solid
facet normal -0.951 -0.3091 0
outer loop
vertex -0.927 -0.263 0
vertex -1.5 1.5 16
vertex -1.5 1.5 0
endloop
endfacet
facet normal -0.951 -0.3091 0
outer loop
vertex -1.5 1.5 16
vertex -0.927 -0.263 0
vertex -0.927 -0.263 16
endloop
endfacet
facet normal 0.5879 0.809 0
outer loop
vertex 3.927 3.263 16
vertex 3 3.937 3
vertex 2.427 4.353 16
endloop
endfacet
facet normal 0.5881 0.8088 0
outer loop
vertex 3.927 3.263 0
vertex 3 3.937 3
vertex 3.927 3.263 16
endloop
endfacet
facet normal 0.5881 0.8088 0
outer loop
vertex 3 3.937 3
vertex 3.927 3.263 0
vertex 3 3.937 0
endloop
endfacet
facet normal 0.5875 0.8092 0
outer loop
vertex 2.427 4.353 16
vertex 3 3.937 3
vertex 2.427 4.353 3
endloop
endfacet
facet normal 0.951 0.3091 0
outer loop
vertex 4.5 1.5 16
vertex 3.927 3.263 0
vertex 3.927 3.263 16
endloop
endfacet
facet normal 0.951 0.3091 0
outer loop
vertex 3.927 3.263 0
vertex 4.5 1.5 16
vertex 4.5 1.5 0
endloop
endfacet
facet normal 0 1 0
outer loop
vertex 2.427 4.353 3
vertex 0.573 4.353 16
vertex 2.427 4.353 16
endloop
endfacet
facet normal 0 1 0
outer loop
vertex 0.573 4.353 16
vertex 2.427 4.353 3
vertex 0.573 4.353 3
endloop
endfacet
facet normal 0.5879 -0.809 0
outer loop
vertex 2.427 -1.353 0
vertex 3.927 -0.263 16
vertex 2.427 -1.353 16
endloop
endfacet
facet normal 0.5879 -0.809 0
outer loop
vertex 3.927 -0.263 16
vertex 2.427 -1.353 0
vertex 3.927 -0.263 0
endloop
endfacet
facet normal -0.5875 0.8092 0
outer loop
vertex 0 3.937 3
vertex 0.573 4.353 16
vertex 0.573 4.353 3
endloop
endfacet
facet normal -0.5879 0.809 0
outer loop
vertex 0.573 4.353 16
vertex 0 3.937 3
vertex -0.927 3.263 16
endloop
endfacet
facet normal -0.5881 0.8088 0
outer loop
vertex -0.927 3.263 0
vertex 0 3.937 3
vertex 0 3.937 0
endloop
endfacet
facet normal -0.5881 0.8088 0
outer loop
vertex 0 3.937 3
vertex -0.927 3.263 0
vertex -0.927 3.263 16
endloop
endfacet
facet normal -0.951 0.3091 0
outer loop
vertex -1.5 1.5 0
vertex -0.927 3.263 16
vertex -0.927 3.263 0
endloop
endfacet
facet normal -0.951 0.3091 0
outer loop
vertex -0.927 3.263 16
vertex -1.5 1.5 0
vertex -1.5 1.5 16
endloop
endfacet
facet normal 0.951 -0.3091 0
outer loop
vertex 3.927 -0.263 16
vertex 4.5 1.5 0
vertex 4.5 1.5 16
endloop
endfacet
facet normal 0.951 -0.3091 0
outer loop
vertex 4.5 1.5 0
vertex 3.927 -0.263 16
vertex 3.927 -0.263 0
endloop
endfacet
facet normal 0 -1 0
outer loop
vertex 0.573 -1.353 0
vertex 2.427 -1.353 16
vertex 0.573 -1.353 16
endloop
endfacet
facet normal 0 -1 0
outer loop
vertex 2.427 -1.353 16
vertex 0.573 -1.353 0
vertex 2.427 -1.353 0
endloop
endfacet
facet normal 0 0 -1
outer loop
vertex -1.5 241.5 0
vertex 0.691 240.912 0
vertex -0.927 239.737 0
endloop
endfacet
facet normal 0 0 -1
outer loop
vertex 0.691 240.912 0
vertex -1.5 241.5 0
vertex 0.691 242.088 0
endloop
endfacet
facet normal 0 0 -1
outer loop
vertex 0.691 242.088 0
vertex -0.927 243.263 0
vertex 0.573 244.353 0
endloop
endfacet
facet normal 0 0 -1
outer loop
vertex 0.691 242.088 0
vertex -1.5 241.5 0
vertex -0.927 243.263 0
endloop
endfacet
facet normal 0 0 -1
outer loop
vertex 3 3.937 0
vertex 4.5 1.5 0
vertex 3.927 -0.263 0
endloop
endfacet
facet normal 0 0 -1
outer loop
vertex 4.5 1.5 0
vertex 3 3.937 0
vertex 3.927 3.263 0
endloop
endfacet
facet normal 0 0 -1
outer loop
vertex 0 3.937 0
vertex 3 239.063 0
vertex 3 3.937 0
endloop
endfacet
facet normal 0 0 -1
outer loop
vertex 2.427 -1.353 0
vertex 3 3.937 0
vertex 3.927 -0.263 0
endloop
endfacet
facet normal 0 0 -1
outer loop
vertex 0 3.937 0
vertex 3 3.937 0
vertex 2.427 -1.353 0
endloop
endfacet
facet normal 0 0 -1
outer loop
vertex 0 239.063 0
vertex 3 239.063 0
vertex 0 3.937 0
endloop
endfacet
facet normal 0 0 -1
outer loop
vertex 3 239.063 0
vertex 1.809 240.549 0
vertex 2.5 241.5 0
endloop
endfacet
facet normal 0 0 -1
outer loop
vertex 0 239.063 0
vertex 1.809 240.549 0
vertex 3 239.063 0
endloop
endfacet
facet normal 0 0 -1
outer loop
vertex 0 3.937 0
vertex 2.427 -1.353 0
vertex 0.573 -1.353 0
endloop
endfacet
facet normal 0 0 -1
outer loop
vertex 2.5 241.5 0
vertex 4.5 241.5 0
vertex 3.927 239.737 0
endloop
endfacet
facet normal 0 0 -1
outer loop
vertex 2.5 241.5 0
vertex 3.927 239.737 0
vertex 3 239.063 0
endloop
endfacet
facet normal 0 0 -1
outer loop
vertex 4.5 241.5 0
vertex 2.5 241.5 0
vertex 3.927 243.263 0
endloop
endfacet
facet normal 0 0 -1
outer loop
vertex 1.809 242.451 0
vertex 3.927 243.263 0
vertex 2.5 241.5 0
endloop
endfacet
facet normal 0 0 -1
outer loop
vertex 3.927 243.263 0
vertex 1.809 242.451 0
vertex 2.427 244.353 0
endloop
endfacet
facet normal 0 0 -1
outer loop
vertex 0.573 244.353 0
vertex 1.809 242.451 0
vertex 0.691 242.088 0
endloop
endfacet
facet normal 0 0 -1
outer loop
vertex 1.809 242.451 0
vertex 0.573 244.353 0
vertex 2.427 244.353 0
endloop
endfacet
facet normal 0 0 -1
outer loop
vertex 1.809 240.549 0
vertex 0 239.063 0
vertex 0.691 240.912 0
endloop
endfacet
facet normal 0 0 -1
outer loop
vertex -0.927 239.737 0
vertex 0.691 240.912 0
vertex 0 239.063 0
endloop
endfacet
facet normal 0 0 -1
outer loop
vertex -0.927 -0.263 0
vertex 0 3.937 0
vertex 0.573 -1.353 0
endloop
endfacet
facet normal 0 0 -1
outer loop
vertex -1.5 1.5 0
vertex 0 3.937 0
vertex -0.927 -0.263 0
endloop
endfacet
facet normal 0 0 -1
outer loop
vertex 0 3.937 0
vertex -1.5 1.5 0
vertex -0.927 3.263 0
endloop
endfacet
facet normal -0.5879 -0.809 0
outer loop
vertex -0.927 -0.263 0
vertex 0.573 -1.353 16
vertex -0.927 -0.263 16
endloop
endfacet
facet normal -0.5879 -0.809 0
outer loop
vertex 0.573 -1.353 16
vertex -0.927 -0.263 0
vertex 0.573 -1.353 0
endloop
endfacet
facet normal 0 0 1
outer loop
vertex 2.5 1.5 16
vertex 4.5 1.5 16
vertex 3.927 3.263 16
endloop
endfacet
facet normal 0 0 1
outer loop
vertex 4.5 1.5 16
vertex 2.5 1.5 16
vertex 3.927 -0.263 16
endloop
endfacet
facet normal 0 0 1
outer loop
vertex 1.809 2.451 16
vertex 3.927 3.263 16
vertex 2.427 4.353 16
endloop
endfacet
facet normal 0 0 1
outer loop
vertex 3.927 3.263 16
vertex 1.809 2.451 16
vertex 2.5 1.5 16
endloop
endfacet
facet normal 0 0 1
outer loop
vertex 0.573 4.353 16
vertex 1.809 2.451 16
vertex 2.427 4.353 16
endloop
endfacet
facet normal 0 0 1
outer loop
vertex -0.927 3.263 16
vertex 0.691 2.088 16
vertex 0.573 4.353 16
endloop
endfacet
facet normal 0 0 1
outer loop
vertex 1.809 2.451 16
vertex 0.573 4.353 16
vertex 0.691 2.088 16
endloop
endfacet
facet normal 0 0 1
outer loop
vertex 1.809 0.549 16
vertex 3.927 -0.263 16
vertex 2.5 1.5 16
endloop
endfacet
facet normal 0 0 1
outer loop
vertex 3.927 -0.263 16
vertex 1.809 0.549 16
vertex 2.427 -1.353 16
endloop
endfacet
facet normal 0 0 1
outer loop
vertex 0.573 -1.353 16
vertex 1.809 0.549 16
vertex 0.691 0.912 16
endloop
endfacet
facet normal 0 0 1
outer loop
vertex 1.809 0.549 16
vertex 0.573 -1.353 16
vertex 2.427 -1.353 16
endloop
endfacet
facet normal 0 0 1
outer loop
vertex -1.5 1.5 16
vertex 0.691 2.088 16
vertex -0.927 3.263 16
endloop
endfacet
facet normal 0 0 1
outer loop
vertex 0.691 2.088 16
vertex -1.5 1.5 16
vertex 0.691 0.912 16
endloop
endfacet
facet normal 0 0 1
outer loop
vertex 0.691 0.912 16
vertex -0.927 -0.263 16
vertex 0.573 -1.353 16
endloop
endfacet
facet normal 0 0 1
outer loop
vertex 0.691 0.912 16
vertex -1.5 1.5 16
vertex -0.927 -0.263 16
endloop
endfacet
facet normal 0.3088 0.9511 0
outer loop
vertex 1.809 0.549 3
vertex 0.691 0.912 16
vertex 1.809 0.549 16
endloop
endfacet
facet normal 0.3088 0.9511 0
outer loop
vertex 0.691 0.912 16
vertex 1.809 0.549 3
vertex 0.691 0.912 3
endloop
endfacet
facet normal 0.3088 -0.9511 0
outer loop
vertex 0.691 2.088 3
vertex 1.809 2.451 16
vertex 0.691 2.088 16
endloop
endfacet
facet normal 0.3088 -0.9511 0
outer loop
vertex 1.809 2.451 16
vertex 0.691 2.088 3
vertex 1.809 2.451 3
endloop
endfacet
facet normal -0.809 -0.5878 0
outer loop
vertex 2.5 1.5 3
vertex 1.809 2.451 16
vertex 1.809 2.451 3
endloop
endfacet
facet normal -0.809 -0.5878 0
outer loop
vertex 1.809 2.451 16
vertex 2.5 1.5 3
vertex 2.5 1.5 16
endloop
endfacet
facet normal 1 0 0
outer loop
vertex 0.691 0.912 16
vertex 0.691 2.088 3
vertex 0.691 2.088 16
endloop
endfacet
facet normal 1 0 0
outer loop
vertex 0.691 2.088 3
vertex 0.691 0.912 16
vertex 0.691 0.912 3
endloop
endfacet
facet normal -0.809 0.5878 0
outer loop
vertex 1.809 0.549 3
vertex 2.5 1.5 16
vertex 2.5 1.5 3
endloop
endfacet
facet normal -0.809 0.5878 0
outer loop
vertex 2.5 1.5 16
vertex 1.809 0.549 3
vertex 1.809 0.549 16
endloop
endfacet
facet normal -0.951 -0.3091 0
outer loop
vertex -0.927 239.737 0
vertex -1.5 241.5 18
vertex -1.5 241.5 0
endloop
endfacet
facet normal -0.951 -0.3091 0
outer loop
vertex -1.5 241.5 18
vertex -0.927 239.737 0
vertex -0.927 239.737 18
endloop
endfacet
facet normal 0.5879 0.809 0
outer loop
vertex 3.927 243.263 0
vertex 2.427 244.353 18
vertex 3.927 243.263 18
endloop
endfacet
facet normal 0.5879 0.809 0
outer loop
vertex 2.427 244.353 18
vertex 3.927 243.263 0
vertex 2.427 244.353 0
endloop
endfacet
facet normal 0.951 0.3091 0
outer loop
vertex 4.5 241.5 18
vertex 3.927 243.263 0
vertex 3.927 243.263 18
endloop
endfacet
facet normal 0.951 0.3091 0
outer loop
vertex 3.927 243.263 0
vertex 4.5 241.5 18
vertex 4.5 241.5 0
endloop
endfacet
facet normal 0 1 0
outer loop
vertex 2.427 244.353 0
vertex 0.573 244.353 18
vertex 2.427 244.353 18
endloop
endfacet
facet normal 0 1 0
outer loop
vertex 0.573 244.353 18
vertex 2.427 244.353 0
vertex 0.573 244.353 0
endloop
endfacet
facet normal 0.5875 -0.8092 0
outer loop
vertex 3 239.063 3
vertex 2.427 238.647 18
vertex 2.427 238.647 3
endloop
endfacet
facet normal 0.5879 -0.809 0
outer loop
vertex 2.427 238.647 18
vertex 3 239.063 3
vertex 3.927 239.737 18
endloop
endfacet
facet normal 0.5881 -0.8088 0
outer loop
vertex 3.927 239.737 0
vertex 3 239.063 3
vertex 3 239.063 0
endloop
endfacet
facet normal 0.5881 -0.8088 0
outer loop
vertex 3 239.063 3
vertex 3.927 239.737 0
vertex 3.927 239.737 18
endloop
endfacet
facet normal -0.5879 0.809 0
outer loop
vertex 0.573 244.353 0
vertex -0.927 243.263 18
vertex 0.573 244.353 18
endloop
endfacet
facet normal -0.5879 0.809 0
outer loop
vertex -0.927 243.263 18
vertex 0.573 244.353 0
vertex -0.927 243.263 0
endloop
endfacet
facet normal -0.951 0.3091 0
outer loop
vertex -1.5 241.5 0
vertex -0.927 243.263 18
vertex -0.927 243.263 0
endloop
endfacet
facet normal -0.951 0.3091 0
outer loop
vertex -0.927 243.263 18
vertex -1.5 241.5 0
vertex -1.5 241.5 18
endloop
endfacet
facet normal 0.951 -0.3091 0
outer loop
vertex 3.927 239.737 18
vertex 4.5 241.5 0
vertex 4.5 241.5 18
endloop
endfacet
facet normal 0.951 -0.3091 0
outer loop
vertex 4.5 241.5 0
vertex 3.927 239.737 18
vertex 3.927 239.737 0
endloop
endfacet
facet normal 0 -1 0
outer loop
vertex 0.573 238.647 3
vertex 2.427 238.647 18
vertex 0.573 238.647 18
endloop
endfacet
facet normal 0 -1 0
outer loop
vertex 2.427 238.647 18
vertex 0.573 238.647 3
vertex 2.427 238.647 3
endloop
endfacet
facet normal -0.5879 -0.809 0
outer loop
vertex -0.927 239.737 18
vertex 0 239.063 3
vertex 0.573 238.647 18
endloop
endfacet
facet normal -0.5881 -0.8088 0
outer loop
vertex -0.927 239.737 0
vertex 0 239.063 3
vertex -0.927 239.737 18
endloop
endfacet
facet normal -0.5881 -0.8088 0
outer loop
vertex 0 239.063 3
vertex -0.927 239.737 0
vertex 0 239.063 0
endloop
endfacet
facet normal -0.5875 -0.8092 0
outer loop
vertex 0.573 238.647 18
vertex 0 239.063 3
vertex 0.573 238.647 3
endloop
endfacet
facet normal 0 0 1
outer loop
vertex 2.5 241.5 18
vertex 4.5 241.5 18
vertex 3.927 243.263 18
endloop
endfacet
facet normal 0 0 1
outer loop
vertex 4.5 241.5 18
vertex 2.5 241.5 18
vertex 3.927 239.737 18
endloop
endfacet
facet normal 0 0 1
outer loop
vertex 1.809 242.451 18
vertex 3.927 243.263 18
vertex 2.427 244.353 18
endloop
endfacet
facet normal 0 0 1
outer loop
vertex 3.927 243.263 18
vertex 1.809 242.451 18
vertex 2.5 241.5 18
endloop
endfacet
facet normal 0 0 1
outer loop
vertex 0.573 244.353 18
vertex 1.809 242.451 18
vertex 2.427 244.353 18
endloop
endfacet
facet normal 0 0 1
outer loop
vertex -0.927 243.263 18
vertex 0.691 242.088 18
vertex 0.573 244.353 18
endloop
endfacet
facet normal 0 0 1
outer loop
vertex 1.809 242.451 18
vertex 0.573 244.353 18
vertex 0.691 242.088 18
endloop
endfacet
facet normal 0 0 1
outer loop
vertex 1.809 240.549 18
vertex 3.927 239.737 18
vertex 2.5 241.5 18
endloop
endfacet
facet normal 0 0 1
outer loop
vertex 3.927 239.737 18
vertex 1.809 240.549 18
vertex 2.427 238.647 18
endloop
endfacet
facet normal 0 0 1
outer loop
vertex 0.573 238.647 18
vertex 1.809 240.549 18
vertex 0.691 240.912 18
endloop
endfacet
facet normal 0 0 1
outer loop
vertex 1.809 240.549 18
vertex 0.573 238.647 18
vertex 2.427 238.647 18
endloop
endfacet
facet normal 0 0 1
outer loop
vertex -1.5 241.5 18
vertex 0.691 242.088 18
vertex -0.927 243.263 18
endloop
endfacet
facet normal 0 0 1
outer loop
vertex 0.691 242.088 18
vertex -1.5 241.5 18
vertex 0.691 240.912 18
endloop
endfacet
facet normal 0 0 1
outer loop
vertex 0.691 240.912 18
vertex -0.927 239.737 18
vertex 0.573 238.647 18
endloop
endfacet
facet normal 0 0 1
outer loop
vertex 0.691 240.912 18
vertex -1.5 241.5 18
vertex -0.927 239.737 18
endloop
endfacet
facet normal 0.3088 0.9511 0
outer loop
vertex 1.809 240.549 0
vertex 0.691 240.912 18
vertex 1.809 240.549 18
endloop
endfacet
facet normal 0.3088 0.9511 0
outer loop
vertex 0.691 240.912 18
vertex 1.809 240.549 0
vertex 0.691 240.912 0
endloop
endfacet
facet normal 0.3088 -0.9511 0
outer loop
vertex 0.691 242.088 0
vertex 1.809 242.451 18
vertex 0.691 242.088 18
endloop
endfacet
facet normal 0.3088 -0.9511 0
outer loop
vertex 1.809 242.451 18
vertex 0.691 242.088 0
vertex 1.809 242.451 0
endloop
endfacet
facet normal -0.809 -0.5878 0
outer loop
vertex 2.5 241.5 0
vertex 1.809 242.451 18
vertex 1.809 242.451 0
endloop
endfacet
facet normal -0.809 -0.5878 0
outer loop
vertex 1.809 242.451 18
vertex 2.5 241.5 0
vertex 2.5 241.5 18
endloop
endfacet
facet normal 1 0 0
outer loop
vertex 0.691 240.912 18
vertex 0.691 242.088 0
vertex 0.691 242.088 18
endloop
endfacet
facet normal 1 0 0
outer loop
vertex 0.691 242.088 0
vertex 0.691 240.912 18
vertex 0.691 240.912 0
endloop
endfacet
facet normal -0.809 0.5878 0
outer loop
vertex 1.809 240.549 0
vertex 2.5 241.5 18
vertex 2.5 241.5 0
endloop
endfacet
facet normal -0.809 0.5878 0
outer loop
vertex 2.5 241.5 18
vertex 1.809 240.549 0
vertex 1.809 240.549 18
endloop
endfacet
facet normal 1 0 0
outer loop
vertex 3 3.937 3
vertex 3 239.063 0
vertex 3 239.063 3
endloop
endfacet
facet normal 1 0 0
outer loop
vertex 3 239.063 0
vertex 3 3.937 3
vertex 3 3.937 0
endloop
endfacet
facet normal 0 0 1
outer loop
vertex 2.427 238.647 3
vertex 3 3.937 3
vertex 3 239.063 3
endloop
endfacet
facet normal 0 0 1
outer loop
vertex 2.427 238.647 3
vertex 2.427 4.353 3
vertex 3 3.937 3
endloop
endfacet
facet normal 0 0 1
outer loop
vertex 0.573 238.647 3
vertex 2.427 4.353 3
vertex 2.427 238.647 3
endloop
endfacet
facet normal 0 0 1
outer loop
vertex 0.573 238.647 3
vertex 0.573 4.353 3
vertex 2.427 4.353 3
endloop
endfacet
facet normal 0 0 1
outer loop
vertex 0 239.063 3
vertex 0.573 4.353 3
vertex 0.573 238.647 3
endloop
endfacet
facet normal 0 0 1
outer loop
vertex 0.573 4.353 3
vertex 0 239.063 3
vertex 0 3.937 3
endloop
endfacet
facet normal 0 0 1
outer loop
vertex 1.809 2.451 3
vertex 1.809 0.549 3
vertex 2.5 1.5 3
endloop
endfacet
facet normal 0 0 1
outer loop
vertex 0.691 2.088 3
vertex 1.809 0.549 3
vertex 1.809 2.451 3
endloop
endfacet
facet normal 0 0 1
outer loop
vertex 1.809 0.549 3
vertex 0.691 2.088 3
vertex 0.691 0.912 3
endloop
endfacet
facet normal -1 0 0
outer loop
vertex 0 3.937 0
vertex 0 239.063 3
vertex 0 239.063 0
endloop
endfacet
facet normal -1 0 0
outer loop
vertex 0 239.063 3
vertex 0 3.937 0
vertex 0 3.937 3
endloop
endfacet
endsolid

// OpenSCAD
cube([3, 240, 3]);

translate([1.5, 1.5, 0]) {
    difference() {
        cylinder(16, 3, 3);
        cylinder(16, 1, 1);
    }
}

translate([1.5, 1.5+240, 0]) {
    difference() {
        cylinder(18, 3, 3);
        cylinder(18, 1, 1);
    }
}
